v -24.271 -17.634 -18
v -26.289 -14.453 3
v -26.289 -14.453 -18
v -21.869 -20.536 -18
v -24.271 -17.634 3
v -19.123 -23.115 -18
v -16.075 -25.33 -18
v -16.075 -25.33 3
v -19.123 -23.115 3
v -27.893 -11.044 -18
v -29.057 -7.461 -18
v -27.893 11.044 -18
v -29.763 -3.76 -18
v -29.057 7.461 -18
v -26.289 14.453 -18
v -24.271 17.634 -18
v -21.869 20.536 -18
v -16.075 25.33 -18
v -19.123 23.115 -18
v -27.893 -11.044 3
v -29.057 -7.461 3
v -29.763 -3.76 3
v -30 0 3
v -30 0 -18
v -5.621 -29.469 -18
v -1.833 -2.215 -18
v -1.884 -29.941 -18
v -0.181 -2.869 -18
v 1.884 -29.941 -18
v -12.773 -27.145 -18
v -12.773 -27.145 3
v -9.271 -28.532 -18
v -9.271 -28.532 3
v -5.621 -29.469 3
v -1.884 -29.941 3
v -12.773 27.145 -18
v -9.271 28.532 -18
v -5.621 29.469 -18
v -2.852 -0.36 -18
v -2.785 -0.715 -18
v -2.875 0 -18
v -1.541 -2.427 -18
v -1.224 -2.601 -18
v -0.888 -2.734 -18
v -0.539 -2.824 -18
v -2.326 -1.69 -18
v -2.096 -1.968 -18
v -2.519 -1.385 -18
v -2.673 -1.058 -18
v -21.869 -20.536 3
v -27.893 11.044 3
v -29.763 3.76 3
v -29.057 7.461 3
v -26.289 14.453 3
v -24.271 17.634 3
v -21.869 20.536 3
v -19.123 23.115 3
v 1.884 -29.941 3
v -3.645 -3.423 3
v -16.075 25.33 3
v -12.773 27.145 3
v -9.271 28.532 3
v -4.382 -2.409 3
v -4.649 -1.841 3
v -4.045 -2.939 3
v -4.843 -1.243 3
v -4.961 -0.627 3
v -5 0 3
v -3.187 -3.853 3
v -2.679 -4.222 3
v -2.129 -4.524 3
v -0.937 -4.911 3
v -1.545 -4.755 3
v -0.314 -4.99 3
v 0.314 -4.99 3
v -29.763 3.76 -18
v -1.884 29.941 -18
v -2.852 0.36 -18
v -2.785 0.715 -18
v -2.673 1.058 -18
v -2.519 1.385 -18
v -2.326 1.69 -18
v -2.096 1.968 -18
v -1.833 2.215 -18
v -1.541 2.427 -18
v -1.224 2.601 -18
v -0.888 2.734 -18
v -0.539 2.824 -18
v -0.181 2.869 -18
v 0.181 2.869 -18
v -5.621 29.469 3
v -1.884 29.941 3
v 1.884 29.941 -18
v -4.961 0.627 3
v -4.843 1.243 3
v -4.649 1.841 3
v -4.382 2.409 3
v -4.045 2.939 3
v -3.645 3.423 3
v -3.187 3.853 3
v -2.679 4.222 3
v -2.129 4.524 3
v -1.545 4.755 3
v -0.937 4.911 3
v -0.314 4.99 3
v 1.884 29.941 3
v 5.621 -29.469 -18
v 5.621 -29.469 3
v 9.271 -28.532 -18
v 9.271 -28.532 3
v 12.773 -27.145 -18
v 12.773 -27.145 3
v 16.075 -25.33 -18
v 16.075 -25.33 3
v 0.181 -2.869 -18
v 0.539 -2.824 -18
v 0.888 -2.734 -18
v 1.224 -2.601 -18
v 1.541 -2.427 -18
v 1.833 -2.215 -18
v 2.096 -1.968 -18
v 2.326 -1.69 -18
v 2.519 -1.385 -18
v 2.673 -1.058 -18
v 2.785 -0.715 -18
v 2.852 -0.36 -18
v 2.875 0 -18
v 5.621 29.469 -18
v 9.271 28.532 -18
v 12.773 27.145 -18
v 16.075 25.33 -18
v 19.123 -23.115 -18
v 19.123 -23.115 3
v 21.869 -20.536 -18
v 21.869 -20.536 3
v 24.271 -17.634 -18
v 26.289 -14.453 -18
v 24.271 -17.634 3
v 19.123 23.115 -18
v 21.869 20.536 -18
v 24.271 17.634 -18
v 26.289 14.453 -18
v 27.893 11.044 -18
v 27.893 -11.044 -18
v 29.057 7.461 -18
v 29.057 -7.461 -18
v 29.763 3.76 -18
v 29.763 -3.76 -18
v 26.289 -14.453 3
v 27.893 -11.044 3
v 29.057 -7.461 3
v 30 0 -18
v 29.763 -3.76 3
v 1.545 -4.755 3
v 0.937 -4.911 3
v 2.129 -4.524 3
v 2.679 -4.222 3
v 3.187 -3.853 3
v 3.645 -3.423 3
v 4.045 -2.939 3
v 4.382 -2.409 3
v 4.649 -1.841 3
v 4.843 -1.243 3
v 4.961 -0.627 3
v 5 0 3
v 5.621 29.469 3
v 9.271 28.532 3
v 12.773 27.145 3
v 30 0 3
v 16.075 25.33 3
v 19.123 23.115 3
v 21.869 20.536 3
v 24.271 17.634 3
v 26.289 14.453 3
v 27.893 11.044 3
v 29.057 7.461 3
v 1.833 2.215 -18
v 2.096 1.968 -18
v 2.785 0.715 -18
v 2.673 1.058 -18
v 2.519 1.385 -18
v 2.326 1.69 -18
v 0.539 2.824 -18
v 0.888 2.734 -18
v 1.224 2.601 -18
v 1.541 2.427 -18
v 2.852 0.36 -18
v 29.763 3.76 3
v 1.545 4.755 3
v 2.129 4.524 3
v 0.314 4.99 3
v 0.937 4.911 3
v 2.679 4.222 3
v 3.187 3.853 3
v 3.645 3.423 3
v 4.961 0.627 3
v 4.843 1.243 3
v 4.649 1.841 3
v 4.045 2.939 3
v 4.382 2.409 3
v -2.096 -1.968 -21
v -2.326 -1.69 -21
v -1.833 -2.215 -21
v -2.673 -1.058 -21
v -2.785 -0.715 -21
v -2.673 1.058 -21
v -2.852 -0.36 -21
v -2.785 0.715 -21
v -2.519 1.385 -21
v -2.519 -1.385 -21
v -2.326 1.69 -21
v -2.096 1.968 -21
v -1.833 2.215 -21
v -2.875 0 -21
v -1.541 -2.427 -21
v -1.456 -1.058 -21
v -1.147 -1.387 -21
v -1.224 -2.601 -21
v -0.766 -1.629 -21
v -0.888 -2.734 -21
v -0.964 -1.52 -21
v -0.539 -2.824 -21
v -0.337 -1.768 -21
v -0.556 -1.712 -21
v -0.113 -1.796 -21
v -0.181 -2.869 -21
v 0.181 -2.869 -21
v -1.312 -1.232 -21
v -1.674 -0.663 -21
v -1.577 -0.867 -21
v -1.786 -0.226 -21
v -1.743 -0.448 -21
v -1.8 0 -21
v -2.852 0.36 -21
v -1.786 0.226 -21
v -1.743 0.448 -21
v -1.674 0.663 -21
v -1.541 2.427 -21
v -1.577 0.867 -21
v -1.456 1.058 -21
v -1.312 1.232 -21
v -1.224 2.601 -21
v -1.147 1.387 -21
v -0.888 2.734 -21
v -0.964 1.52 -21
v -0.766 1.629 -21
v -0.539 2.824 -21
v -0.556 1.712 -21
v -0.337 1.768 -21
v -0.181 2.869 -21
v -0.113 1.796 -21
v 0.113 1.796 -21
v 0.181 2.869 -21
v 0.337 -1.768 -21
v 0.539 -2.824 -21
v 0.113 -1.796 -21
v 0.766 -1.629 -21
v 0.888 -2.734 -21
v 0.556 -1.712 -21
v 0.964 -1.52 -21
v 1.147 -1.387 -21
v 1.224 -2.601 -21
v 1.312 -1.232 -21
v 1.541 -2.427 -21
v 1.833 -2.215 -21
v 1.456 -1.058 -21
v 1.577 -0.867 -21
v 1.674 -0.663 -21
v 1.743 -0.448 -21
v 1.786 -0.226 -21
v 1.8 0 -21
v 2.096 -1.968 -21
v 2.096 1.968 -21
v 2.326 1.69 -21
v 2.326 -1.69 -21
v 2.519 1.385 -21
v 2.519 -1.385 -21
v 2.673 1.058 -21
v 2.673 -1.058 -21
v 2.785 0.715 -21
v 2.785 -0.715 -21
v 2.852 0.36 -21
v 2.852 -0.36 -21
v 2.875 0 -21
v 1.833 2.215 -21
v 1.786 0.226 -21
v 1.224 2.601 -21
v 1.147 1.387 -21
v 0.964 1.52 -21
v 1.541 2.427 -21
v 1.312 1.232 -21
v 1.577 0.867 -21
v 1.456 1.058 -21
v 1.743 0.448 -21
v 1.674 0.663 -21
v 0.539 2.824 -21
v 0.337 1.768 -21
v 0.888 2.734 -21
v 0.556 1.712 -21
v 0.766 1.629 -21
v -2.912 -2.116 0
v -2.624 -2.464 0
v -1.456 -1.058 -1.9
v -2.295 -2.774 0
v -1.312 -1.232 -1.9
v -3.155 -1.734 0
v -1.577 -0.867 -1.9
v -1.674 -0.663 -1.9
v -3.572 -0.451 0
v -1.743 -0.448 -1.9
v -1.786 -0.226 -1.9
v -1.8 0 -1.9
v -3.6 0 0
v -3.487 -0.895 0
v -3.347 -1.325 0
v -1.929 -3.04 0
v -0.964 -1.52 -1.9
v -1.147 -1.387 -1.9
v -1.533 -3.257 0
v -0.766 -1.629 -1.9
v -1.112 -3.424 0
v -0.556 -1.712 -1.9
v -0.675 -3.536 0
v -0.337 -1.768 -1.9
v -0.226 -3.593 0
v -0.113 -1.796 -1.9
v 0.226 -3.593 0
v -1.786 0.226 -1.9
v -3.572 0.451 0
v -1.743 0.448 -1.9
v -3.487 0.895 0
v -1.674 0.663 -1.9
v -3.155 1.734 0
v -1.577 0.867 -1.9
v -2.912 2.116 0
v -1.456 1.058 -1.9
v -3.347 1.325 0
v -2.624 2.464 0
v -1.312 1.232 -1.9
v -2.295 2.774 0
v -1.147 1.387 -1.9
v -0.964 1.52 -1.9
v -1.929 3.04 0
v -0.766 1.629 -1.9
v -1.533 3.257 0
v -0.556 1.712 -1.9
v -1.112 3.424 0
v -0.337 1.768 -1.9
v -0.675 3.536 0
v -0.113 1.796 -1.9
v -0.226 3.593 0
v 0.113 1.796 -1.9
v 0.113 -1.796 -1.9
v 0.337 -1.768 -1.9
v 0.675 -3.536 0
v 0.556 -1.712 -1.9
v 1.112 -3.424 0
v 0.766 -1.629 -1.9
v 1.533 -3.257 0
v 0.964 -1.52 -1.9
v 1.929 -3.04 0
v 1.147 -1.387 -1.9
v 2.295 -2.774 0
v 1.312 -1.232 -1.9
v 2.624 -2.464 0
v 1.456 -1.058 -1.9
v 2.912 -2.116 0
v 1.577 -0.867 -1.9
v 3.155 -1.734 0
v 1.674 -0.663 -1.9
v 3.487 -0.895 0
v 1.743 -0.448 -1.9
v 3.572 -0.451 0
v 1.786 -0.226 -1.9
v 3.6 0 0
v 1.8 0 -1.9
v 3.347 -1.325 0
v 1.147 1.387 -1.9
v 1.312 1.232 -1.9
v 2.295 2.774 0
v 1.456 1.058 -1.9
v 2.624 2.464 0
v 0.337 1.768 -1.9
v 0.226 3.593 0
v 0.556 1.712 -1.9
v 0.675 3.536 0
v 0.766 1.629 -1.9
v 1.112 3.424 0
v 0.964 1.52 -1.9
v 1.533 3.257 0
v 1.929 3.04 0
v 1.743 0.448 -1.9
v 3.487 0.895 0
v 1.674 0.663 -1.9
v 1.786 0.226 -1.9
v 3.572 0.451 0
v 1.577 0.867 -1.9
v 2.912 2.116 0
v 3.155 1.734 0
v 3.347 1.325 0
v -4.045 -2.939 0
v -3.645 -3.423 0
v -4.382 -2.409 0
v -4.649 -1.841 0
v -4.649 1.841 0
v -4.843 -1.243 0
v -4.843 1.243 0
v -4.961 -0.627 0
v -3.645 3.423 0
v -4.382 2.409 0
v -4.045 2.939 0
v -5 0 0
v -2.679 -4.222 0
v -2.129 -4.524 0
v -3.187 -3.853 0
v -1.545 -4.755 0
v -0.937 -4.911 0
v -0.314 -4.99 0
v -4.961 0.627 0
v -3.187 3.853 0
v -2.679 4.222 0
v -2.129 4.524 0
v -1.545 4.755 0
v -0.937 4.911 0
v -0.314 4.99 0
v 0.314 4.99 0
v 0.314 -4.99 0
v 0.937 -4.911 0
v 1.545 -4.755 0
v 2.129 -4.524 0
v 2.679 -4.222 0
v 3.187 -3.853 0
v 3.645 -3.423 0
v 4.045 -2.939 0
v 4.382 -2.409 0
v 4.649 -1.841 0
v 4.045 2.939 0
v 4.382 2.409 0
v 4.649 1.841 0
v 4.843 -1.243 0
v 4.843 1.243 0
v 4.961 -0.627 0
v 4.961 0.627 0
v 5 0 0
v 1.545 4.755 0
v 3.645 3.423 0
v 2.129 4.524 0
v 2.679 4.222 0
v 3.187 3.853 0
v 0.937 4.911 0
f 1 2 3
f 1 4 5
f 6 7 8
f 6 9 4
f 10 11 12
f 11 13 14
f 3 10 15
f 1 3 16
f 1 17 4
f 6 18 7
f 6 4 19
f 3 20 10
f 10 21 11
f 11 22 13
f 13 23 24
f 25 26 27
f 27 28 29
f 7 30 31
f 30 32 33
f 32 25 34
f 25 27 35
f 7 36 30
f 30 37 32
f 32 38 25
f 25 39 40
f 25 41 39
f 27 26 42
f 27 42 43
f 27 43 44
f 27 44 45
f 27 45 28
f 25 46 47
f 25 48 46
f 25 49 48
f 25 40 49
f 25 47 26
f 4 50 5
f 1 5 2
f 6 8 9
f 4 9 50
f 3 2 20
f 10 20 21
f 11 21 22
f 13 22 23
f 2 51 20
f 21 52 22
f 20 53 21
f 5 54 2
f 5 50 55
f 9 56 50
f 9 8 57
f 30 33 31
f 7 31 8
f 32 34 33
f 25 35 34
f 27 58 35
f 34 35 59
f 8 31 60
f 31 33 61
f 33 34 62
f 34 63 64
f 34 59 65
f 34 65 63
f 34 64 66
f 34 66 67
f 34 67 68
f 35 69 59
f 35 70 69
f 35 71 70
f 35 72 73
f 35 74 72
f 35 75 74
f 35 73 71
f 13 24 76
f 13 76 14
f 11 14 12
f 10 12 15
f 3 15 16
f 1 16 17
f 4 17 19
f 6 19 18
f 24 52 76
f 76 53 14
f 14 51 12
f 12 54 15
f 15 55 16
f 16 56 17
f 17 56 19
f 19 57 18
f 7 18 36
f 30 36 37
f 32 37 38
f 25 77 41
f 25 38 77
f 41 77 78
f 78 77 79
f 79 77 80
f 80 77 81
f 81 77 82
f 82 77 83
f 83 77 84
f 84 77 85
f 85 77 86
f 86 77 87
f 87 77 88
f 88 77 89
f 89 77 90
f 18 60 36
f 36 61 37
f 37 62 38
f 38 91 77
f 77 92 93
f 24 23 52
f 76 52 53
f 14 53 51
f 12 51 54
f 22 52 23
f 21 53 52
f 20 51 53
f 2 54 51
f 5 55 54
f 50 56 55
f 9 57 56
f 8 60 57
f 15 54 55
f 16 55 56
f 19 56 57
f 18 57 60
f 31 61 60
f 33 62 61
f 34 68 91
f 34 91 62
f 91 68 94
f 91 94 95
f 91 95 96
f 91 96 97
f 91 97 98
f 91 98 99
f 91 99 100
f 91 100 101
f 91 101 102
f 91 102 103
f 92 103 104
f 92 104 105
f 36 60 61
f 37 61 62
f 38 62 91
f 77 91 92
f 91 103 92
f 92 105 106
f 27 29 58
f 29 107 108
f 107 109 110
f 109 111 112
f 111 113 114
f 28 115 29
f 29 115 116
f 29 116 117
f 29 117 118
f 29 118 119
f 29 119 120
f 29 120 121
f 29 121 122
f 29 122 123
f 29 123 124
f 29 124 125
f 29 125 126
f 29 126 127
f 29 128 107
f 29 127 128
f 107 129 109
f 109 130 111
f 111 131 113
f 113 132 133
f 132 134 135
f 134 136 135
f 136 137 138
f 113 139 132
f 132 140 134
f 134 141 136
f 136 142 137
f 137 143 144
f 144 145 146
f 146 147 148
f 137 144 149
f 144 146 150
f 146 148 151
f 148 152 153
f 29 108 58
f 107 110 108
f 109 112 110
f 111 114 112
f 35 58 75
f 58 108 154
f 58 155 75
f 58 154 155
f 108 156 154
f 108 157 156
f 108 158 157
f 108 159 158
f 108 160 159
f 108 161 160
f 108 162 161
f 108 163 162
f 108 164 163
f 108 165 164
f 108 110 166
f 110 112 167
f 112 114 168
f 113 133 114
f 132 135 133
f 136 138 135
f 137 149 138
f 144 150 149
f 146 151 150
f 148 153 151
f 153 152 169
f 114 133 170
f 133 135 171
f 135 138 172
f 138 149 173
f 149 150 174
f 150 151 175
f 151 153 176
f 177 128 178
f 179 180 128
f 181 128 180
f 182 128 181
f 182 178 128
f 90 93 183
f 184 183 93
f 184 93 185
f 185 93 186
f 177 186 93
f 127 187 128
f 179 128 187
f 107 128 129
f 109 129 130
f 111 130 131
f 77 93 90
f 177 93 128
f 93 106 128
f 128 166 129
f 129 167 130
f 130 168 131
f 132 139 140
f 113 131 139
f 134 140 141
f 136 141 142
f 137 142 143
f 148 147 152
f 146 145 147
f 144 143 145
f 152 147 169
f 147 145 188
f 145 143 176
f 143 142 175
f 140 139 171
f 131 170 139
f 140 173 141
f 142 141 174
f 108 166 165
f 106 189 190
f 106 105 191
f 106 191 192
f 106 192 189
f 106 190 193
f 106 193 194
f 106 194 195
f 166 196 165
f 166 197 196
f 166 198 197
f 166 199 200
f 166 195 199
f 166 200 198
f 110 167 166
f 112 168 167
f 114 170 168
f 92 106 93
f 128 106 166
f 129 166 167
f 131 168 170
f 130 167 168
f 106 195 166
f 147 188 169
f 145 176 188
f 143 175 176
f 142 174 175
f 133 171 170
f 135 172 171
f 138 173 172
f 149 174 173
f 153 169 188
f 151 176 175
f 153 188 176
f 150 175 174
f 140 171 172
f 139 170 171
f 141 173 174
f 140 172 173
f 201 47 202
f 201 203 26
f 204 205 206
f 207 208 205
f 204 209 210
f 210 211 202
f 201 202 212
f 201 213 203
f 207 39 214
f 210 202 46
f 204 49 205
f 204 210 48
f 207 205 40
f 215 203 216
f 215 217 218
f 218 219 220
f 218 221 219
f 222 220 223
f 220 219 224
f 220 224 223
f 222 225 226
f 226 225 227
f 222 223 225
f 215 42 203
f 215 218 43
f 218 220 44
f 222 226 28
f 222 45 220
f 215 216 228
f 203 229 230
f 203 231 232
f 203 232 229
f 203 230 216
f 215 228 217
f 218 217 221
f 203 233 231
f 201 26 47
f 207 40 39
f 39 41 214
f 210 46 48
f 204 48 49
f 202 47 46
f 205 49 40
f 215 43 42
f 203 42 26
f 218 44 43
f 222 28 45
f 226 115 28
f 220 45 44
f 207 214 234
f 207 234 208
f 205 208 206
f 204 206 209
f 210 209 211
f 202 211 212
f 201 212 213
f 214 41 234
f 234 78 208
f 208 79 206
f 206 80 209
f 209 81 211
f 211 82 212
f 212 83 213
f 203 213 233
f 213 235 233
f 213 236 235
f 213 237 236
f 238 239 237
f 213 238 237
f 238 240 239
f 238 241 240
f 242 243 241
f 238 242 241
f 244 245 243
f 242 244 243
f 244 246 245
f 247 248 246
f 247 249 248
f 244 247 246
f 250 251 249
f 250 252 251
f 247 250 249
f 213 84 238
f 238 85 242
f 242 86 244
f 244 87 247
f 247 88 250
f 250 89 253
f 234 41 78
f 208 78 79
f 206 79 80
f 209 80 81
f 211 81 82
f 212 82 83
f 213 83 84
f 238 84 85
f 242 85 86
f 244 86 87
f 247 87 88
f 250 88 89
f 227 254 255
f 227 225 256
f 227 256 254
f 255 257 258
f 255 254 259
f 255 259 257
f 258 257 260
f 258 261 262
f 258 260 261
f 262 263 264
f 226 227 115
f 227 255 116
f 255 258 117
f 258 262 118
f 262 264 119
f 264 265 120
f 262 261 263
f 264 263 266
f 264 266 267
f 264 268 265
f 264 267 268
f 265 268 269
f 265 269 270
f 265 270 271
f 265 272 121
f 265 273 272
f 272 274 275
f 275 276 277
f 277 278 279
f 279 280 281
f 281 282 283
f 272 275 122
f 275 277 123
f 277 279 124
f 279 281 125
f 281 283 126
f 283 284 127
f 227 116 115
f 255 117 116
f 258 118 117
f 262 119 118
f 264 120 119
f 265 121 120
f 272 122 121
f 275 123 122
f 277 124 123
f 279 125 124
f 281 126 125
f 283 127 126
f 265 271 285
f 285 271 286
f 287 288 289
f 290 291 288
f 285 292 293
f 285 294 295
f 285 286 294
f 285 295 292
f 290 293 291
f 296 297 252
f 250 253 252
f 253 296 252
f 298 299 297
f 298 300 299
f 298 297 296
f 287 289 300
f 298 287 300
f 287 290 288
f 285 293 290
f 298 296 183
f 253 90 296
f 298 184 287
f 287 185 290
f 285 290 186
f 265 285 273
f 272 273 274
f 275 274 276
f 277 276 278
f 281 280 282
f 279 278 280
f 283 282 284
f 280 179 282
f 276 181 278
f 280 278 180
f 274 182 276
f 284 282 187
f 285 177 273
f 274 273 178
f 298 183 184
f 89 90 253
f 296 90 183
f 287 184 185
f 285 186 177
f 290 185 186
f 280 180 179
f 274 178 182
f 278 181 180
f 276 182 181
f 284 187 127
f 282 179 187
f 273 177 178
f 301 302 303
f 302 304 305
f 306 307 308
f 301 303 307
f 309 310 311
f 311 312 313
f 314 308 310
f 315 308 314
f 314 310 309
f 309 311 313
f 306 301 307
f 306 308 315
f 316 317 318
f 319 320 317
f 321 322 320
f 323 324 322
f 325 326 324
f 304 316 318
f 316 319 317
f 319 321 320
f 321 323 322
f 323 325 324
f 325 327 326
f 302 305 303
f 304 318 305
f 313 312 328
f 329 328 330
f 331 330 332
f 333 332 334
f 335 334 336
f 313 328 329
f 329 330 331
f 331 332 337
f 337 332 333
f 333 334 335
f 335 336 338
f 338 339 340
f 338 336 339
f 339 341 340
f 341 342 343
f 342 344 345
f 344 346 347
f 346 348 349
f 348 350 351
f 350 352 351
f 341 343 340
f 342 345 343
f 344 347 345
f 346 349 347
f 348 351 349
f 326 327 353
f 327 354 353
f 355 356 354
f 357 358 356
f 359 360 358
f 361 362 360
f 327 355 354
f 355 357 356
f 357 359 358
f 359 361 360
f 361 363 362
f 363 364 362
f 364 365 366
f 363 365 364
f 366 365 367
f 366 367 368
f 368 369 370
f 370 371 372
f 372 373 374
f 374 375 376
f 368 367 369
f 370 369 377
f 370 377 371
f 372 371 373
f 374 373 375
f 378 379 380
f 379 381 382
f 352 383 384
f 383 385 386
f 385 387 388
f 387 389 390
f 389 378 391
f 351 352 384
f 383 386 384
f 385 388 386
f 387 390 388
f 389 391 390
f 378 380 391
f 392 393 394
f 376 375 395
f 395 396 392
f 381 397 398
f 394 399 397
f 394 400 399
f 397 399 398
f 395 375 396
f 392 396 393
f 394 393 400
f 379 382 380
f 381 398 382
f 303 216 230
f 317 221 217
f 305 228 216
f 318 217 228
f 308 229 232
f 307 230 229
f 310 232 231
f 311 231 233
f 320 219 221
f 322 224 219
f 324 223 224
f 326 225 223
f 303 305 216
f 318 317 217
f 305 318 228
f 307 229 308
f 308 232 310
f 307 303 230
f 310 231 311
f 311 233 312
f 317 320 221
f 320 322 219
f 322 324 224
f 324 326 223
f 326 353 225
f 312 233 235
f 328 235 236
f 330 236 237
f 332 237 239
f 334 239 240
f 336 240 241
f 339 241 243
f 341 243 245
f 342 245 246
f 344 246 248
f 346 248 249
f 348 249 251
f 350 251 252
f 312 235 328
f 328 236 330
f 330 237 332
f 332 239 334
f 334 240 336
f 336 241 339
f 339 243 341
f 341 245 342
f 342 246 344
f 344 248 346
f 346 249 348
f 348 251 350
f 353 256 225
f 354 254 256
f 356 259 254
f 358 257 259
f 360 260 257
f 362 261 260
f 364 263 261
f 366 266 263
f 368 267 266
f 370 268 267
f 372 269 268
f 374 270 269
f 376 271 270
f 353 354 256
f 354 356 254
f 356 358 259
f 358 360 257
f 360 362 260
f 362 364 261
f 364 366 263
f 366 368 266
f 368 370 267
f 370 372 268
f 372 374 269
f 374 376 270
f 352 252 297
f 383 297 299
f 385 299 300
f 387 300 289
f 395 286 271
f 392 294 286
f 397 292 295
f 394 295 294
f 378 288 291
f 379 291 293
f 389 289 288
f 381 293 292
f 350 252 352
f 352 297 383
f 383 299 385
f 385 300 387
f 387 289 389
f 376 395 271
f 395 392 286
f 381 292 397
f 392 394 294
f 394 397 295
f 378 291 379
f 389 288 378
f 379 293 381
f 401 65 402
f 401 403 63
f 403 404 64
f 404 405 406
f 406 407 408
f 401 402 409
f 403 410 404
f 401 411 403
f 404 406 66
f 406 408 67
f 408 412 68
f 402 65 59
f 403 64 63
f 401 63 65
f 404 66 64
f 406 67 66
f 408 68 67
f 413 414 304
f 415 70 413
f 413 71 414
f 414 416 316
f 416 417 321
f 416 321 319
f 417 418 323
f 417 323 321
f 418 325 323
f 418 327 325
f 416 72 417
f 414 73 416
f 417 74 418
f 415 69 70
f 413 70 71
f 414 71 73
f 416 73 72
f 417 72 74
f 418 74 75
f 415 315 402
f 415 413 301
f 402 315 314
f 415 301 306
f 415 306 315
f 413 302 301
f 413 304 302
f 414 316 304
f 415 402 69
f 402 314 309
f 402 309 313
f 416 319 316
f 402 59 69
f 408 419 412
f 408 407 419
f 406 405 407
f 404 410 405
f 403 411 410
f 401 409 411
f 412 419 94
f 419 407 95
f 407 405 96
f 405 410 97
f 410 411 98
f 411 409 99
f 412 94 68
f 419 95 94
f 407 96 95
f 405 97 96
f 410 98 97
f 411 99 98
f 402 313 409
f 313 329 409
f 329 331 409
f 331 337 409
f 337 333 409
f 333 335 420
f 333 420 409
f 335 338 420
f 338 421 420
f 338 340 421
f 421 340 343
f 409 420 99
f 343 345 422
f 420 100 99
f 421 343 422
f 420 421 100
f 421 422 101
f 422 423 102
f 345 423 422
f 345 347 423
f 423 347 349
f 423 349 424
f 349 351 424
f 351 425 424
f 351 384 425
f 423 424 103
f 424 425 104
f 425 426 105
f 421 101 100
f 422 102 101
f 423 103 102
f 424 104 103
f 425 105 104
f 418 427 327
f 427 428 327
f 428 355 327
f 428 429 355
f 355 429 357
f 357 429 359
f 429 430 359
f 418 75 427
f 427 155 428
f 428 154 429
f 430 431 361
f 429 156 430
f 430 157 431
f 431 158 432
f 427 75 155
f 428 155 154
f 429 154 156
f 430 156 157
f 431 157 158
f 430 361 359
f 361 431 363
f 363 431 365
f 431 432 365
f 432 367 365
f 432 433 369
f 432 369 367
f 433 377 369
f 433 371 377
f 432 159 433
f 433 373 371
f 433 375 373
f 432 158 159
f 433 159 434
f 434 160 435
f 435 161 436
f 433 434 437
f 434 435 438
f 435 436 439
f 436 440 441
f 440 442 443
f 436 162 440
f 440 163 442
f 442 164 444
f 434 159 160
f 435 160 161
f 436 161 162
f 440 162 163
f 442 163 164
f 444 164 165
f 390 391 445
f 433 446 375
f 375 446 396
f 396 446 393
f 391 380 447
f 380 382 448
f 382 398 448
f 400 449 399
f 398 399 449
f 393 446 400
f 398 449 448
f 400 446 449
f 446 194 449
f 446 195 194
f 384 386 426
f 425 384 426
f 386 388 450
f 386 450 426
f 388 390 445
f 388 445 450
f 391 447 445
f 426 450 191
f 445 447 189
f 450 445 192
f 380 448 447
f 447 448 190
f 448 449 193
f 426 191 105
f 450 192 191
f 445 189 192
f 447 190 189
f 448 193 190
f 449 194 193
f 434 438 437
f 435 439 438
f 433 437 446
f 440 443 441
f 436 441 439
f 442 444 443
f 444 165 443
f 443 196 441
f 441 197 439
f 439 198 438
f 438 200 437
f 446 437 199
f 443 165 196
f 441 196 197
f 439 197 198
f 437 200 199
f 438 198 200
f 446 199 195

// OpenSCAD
$fn = 50;


difference() {
	union() {
		translate(v = [0, 0, -18.0000000000]) {
			cylinder(h = 21, r = 30.0000000000);
		}
		#translate(v = [0, 0, -21.0000000000]) {
			cylinder(h = 21, r = 2.8750000000);
		}
	}
	union() {
		translate(v = [0, 0, 0]) {
			rotate(a = [0, 0, 0]) {
				difference() {
					union() {
						translate(v = [0, 0, -21.0000000000]) {
							cylinder(h = 21, r = 1.5000000000);
						}
						translate(v = [0, 0, -1.9000000000]) {
							cylinder(h = 1.9000000000, r1 = 1.8000000000, r2 = 3.6000000000);
						}
						translate(v = [0, 0, -21.0000000000]) {
							cylinder(h = 21, r = 1.8000000000);
						}
						translate(v = [0, 0, -21.0000000000]) {
							cylinder(h = 21, r = 1.5000000000);
						}
					}
					union();
				}
			}
		}
		#cylinder(h = 3, r = 5.0000000000);
	}
}
